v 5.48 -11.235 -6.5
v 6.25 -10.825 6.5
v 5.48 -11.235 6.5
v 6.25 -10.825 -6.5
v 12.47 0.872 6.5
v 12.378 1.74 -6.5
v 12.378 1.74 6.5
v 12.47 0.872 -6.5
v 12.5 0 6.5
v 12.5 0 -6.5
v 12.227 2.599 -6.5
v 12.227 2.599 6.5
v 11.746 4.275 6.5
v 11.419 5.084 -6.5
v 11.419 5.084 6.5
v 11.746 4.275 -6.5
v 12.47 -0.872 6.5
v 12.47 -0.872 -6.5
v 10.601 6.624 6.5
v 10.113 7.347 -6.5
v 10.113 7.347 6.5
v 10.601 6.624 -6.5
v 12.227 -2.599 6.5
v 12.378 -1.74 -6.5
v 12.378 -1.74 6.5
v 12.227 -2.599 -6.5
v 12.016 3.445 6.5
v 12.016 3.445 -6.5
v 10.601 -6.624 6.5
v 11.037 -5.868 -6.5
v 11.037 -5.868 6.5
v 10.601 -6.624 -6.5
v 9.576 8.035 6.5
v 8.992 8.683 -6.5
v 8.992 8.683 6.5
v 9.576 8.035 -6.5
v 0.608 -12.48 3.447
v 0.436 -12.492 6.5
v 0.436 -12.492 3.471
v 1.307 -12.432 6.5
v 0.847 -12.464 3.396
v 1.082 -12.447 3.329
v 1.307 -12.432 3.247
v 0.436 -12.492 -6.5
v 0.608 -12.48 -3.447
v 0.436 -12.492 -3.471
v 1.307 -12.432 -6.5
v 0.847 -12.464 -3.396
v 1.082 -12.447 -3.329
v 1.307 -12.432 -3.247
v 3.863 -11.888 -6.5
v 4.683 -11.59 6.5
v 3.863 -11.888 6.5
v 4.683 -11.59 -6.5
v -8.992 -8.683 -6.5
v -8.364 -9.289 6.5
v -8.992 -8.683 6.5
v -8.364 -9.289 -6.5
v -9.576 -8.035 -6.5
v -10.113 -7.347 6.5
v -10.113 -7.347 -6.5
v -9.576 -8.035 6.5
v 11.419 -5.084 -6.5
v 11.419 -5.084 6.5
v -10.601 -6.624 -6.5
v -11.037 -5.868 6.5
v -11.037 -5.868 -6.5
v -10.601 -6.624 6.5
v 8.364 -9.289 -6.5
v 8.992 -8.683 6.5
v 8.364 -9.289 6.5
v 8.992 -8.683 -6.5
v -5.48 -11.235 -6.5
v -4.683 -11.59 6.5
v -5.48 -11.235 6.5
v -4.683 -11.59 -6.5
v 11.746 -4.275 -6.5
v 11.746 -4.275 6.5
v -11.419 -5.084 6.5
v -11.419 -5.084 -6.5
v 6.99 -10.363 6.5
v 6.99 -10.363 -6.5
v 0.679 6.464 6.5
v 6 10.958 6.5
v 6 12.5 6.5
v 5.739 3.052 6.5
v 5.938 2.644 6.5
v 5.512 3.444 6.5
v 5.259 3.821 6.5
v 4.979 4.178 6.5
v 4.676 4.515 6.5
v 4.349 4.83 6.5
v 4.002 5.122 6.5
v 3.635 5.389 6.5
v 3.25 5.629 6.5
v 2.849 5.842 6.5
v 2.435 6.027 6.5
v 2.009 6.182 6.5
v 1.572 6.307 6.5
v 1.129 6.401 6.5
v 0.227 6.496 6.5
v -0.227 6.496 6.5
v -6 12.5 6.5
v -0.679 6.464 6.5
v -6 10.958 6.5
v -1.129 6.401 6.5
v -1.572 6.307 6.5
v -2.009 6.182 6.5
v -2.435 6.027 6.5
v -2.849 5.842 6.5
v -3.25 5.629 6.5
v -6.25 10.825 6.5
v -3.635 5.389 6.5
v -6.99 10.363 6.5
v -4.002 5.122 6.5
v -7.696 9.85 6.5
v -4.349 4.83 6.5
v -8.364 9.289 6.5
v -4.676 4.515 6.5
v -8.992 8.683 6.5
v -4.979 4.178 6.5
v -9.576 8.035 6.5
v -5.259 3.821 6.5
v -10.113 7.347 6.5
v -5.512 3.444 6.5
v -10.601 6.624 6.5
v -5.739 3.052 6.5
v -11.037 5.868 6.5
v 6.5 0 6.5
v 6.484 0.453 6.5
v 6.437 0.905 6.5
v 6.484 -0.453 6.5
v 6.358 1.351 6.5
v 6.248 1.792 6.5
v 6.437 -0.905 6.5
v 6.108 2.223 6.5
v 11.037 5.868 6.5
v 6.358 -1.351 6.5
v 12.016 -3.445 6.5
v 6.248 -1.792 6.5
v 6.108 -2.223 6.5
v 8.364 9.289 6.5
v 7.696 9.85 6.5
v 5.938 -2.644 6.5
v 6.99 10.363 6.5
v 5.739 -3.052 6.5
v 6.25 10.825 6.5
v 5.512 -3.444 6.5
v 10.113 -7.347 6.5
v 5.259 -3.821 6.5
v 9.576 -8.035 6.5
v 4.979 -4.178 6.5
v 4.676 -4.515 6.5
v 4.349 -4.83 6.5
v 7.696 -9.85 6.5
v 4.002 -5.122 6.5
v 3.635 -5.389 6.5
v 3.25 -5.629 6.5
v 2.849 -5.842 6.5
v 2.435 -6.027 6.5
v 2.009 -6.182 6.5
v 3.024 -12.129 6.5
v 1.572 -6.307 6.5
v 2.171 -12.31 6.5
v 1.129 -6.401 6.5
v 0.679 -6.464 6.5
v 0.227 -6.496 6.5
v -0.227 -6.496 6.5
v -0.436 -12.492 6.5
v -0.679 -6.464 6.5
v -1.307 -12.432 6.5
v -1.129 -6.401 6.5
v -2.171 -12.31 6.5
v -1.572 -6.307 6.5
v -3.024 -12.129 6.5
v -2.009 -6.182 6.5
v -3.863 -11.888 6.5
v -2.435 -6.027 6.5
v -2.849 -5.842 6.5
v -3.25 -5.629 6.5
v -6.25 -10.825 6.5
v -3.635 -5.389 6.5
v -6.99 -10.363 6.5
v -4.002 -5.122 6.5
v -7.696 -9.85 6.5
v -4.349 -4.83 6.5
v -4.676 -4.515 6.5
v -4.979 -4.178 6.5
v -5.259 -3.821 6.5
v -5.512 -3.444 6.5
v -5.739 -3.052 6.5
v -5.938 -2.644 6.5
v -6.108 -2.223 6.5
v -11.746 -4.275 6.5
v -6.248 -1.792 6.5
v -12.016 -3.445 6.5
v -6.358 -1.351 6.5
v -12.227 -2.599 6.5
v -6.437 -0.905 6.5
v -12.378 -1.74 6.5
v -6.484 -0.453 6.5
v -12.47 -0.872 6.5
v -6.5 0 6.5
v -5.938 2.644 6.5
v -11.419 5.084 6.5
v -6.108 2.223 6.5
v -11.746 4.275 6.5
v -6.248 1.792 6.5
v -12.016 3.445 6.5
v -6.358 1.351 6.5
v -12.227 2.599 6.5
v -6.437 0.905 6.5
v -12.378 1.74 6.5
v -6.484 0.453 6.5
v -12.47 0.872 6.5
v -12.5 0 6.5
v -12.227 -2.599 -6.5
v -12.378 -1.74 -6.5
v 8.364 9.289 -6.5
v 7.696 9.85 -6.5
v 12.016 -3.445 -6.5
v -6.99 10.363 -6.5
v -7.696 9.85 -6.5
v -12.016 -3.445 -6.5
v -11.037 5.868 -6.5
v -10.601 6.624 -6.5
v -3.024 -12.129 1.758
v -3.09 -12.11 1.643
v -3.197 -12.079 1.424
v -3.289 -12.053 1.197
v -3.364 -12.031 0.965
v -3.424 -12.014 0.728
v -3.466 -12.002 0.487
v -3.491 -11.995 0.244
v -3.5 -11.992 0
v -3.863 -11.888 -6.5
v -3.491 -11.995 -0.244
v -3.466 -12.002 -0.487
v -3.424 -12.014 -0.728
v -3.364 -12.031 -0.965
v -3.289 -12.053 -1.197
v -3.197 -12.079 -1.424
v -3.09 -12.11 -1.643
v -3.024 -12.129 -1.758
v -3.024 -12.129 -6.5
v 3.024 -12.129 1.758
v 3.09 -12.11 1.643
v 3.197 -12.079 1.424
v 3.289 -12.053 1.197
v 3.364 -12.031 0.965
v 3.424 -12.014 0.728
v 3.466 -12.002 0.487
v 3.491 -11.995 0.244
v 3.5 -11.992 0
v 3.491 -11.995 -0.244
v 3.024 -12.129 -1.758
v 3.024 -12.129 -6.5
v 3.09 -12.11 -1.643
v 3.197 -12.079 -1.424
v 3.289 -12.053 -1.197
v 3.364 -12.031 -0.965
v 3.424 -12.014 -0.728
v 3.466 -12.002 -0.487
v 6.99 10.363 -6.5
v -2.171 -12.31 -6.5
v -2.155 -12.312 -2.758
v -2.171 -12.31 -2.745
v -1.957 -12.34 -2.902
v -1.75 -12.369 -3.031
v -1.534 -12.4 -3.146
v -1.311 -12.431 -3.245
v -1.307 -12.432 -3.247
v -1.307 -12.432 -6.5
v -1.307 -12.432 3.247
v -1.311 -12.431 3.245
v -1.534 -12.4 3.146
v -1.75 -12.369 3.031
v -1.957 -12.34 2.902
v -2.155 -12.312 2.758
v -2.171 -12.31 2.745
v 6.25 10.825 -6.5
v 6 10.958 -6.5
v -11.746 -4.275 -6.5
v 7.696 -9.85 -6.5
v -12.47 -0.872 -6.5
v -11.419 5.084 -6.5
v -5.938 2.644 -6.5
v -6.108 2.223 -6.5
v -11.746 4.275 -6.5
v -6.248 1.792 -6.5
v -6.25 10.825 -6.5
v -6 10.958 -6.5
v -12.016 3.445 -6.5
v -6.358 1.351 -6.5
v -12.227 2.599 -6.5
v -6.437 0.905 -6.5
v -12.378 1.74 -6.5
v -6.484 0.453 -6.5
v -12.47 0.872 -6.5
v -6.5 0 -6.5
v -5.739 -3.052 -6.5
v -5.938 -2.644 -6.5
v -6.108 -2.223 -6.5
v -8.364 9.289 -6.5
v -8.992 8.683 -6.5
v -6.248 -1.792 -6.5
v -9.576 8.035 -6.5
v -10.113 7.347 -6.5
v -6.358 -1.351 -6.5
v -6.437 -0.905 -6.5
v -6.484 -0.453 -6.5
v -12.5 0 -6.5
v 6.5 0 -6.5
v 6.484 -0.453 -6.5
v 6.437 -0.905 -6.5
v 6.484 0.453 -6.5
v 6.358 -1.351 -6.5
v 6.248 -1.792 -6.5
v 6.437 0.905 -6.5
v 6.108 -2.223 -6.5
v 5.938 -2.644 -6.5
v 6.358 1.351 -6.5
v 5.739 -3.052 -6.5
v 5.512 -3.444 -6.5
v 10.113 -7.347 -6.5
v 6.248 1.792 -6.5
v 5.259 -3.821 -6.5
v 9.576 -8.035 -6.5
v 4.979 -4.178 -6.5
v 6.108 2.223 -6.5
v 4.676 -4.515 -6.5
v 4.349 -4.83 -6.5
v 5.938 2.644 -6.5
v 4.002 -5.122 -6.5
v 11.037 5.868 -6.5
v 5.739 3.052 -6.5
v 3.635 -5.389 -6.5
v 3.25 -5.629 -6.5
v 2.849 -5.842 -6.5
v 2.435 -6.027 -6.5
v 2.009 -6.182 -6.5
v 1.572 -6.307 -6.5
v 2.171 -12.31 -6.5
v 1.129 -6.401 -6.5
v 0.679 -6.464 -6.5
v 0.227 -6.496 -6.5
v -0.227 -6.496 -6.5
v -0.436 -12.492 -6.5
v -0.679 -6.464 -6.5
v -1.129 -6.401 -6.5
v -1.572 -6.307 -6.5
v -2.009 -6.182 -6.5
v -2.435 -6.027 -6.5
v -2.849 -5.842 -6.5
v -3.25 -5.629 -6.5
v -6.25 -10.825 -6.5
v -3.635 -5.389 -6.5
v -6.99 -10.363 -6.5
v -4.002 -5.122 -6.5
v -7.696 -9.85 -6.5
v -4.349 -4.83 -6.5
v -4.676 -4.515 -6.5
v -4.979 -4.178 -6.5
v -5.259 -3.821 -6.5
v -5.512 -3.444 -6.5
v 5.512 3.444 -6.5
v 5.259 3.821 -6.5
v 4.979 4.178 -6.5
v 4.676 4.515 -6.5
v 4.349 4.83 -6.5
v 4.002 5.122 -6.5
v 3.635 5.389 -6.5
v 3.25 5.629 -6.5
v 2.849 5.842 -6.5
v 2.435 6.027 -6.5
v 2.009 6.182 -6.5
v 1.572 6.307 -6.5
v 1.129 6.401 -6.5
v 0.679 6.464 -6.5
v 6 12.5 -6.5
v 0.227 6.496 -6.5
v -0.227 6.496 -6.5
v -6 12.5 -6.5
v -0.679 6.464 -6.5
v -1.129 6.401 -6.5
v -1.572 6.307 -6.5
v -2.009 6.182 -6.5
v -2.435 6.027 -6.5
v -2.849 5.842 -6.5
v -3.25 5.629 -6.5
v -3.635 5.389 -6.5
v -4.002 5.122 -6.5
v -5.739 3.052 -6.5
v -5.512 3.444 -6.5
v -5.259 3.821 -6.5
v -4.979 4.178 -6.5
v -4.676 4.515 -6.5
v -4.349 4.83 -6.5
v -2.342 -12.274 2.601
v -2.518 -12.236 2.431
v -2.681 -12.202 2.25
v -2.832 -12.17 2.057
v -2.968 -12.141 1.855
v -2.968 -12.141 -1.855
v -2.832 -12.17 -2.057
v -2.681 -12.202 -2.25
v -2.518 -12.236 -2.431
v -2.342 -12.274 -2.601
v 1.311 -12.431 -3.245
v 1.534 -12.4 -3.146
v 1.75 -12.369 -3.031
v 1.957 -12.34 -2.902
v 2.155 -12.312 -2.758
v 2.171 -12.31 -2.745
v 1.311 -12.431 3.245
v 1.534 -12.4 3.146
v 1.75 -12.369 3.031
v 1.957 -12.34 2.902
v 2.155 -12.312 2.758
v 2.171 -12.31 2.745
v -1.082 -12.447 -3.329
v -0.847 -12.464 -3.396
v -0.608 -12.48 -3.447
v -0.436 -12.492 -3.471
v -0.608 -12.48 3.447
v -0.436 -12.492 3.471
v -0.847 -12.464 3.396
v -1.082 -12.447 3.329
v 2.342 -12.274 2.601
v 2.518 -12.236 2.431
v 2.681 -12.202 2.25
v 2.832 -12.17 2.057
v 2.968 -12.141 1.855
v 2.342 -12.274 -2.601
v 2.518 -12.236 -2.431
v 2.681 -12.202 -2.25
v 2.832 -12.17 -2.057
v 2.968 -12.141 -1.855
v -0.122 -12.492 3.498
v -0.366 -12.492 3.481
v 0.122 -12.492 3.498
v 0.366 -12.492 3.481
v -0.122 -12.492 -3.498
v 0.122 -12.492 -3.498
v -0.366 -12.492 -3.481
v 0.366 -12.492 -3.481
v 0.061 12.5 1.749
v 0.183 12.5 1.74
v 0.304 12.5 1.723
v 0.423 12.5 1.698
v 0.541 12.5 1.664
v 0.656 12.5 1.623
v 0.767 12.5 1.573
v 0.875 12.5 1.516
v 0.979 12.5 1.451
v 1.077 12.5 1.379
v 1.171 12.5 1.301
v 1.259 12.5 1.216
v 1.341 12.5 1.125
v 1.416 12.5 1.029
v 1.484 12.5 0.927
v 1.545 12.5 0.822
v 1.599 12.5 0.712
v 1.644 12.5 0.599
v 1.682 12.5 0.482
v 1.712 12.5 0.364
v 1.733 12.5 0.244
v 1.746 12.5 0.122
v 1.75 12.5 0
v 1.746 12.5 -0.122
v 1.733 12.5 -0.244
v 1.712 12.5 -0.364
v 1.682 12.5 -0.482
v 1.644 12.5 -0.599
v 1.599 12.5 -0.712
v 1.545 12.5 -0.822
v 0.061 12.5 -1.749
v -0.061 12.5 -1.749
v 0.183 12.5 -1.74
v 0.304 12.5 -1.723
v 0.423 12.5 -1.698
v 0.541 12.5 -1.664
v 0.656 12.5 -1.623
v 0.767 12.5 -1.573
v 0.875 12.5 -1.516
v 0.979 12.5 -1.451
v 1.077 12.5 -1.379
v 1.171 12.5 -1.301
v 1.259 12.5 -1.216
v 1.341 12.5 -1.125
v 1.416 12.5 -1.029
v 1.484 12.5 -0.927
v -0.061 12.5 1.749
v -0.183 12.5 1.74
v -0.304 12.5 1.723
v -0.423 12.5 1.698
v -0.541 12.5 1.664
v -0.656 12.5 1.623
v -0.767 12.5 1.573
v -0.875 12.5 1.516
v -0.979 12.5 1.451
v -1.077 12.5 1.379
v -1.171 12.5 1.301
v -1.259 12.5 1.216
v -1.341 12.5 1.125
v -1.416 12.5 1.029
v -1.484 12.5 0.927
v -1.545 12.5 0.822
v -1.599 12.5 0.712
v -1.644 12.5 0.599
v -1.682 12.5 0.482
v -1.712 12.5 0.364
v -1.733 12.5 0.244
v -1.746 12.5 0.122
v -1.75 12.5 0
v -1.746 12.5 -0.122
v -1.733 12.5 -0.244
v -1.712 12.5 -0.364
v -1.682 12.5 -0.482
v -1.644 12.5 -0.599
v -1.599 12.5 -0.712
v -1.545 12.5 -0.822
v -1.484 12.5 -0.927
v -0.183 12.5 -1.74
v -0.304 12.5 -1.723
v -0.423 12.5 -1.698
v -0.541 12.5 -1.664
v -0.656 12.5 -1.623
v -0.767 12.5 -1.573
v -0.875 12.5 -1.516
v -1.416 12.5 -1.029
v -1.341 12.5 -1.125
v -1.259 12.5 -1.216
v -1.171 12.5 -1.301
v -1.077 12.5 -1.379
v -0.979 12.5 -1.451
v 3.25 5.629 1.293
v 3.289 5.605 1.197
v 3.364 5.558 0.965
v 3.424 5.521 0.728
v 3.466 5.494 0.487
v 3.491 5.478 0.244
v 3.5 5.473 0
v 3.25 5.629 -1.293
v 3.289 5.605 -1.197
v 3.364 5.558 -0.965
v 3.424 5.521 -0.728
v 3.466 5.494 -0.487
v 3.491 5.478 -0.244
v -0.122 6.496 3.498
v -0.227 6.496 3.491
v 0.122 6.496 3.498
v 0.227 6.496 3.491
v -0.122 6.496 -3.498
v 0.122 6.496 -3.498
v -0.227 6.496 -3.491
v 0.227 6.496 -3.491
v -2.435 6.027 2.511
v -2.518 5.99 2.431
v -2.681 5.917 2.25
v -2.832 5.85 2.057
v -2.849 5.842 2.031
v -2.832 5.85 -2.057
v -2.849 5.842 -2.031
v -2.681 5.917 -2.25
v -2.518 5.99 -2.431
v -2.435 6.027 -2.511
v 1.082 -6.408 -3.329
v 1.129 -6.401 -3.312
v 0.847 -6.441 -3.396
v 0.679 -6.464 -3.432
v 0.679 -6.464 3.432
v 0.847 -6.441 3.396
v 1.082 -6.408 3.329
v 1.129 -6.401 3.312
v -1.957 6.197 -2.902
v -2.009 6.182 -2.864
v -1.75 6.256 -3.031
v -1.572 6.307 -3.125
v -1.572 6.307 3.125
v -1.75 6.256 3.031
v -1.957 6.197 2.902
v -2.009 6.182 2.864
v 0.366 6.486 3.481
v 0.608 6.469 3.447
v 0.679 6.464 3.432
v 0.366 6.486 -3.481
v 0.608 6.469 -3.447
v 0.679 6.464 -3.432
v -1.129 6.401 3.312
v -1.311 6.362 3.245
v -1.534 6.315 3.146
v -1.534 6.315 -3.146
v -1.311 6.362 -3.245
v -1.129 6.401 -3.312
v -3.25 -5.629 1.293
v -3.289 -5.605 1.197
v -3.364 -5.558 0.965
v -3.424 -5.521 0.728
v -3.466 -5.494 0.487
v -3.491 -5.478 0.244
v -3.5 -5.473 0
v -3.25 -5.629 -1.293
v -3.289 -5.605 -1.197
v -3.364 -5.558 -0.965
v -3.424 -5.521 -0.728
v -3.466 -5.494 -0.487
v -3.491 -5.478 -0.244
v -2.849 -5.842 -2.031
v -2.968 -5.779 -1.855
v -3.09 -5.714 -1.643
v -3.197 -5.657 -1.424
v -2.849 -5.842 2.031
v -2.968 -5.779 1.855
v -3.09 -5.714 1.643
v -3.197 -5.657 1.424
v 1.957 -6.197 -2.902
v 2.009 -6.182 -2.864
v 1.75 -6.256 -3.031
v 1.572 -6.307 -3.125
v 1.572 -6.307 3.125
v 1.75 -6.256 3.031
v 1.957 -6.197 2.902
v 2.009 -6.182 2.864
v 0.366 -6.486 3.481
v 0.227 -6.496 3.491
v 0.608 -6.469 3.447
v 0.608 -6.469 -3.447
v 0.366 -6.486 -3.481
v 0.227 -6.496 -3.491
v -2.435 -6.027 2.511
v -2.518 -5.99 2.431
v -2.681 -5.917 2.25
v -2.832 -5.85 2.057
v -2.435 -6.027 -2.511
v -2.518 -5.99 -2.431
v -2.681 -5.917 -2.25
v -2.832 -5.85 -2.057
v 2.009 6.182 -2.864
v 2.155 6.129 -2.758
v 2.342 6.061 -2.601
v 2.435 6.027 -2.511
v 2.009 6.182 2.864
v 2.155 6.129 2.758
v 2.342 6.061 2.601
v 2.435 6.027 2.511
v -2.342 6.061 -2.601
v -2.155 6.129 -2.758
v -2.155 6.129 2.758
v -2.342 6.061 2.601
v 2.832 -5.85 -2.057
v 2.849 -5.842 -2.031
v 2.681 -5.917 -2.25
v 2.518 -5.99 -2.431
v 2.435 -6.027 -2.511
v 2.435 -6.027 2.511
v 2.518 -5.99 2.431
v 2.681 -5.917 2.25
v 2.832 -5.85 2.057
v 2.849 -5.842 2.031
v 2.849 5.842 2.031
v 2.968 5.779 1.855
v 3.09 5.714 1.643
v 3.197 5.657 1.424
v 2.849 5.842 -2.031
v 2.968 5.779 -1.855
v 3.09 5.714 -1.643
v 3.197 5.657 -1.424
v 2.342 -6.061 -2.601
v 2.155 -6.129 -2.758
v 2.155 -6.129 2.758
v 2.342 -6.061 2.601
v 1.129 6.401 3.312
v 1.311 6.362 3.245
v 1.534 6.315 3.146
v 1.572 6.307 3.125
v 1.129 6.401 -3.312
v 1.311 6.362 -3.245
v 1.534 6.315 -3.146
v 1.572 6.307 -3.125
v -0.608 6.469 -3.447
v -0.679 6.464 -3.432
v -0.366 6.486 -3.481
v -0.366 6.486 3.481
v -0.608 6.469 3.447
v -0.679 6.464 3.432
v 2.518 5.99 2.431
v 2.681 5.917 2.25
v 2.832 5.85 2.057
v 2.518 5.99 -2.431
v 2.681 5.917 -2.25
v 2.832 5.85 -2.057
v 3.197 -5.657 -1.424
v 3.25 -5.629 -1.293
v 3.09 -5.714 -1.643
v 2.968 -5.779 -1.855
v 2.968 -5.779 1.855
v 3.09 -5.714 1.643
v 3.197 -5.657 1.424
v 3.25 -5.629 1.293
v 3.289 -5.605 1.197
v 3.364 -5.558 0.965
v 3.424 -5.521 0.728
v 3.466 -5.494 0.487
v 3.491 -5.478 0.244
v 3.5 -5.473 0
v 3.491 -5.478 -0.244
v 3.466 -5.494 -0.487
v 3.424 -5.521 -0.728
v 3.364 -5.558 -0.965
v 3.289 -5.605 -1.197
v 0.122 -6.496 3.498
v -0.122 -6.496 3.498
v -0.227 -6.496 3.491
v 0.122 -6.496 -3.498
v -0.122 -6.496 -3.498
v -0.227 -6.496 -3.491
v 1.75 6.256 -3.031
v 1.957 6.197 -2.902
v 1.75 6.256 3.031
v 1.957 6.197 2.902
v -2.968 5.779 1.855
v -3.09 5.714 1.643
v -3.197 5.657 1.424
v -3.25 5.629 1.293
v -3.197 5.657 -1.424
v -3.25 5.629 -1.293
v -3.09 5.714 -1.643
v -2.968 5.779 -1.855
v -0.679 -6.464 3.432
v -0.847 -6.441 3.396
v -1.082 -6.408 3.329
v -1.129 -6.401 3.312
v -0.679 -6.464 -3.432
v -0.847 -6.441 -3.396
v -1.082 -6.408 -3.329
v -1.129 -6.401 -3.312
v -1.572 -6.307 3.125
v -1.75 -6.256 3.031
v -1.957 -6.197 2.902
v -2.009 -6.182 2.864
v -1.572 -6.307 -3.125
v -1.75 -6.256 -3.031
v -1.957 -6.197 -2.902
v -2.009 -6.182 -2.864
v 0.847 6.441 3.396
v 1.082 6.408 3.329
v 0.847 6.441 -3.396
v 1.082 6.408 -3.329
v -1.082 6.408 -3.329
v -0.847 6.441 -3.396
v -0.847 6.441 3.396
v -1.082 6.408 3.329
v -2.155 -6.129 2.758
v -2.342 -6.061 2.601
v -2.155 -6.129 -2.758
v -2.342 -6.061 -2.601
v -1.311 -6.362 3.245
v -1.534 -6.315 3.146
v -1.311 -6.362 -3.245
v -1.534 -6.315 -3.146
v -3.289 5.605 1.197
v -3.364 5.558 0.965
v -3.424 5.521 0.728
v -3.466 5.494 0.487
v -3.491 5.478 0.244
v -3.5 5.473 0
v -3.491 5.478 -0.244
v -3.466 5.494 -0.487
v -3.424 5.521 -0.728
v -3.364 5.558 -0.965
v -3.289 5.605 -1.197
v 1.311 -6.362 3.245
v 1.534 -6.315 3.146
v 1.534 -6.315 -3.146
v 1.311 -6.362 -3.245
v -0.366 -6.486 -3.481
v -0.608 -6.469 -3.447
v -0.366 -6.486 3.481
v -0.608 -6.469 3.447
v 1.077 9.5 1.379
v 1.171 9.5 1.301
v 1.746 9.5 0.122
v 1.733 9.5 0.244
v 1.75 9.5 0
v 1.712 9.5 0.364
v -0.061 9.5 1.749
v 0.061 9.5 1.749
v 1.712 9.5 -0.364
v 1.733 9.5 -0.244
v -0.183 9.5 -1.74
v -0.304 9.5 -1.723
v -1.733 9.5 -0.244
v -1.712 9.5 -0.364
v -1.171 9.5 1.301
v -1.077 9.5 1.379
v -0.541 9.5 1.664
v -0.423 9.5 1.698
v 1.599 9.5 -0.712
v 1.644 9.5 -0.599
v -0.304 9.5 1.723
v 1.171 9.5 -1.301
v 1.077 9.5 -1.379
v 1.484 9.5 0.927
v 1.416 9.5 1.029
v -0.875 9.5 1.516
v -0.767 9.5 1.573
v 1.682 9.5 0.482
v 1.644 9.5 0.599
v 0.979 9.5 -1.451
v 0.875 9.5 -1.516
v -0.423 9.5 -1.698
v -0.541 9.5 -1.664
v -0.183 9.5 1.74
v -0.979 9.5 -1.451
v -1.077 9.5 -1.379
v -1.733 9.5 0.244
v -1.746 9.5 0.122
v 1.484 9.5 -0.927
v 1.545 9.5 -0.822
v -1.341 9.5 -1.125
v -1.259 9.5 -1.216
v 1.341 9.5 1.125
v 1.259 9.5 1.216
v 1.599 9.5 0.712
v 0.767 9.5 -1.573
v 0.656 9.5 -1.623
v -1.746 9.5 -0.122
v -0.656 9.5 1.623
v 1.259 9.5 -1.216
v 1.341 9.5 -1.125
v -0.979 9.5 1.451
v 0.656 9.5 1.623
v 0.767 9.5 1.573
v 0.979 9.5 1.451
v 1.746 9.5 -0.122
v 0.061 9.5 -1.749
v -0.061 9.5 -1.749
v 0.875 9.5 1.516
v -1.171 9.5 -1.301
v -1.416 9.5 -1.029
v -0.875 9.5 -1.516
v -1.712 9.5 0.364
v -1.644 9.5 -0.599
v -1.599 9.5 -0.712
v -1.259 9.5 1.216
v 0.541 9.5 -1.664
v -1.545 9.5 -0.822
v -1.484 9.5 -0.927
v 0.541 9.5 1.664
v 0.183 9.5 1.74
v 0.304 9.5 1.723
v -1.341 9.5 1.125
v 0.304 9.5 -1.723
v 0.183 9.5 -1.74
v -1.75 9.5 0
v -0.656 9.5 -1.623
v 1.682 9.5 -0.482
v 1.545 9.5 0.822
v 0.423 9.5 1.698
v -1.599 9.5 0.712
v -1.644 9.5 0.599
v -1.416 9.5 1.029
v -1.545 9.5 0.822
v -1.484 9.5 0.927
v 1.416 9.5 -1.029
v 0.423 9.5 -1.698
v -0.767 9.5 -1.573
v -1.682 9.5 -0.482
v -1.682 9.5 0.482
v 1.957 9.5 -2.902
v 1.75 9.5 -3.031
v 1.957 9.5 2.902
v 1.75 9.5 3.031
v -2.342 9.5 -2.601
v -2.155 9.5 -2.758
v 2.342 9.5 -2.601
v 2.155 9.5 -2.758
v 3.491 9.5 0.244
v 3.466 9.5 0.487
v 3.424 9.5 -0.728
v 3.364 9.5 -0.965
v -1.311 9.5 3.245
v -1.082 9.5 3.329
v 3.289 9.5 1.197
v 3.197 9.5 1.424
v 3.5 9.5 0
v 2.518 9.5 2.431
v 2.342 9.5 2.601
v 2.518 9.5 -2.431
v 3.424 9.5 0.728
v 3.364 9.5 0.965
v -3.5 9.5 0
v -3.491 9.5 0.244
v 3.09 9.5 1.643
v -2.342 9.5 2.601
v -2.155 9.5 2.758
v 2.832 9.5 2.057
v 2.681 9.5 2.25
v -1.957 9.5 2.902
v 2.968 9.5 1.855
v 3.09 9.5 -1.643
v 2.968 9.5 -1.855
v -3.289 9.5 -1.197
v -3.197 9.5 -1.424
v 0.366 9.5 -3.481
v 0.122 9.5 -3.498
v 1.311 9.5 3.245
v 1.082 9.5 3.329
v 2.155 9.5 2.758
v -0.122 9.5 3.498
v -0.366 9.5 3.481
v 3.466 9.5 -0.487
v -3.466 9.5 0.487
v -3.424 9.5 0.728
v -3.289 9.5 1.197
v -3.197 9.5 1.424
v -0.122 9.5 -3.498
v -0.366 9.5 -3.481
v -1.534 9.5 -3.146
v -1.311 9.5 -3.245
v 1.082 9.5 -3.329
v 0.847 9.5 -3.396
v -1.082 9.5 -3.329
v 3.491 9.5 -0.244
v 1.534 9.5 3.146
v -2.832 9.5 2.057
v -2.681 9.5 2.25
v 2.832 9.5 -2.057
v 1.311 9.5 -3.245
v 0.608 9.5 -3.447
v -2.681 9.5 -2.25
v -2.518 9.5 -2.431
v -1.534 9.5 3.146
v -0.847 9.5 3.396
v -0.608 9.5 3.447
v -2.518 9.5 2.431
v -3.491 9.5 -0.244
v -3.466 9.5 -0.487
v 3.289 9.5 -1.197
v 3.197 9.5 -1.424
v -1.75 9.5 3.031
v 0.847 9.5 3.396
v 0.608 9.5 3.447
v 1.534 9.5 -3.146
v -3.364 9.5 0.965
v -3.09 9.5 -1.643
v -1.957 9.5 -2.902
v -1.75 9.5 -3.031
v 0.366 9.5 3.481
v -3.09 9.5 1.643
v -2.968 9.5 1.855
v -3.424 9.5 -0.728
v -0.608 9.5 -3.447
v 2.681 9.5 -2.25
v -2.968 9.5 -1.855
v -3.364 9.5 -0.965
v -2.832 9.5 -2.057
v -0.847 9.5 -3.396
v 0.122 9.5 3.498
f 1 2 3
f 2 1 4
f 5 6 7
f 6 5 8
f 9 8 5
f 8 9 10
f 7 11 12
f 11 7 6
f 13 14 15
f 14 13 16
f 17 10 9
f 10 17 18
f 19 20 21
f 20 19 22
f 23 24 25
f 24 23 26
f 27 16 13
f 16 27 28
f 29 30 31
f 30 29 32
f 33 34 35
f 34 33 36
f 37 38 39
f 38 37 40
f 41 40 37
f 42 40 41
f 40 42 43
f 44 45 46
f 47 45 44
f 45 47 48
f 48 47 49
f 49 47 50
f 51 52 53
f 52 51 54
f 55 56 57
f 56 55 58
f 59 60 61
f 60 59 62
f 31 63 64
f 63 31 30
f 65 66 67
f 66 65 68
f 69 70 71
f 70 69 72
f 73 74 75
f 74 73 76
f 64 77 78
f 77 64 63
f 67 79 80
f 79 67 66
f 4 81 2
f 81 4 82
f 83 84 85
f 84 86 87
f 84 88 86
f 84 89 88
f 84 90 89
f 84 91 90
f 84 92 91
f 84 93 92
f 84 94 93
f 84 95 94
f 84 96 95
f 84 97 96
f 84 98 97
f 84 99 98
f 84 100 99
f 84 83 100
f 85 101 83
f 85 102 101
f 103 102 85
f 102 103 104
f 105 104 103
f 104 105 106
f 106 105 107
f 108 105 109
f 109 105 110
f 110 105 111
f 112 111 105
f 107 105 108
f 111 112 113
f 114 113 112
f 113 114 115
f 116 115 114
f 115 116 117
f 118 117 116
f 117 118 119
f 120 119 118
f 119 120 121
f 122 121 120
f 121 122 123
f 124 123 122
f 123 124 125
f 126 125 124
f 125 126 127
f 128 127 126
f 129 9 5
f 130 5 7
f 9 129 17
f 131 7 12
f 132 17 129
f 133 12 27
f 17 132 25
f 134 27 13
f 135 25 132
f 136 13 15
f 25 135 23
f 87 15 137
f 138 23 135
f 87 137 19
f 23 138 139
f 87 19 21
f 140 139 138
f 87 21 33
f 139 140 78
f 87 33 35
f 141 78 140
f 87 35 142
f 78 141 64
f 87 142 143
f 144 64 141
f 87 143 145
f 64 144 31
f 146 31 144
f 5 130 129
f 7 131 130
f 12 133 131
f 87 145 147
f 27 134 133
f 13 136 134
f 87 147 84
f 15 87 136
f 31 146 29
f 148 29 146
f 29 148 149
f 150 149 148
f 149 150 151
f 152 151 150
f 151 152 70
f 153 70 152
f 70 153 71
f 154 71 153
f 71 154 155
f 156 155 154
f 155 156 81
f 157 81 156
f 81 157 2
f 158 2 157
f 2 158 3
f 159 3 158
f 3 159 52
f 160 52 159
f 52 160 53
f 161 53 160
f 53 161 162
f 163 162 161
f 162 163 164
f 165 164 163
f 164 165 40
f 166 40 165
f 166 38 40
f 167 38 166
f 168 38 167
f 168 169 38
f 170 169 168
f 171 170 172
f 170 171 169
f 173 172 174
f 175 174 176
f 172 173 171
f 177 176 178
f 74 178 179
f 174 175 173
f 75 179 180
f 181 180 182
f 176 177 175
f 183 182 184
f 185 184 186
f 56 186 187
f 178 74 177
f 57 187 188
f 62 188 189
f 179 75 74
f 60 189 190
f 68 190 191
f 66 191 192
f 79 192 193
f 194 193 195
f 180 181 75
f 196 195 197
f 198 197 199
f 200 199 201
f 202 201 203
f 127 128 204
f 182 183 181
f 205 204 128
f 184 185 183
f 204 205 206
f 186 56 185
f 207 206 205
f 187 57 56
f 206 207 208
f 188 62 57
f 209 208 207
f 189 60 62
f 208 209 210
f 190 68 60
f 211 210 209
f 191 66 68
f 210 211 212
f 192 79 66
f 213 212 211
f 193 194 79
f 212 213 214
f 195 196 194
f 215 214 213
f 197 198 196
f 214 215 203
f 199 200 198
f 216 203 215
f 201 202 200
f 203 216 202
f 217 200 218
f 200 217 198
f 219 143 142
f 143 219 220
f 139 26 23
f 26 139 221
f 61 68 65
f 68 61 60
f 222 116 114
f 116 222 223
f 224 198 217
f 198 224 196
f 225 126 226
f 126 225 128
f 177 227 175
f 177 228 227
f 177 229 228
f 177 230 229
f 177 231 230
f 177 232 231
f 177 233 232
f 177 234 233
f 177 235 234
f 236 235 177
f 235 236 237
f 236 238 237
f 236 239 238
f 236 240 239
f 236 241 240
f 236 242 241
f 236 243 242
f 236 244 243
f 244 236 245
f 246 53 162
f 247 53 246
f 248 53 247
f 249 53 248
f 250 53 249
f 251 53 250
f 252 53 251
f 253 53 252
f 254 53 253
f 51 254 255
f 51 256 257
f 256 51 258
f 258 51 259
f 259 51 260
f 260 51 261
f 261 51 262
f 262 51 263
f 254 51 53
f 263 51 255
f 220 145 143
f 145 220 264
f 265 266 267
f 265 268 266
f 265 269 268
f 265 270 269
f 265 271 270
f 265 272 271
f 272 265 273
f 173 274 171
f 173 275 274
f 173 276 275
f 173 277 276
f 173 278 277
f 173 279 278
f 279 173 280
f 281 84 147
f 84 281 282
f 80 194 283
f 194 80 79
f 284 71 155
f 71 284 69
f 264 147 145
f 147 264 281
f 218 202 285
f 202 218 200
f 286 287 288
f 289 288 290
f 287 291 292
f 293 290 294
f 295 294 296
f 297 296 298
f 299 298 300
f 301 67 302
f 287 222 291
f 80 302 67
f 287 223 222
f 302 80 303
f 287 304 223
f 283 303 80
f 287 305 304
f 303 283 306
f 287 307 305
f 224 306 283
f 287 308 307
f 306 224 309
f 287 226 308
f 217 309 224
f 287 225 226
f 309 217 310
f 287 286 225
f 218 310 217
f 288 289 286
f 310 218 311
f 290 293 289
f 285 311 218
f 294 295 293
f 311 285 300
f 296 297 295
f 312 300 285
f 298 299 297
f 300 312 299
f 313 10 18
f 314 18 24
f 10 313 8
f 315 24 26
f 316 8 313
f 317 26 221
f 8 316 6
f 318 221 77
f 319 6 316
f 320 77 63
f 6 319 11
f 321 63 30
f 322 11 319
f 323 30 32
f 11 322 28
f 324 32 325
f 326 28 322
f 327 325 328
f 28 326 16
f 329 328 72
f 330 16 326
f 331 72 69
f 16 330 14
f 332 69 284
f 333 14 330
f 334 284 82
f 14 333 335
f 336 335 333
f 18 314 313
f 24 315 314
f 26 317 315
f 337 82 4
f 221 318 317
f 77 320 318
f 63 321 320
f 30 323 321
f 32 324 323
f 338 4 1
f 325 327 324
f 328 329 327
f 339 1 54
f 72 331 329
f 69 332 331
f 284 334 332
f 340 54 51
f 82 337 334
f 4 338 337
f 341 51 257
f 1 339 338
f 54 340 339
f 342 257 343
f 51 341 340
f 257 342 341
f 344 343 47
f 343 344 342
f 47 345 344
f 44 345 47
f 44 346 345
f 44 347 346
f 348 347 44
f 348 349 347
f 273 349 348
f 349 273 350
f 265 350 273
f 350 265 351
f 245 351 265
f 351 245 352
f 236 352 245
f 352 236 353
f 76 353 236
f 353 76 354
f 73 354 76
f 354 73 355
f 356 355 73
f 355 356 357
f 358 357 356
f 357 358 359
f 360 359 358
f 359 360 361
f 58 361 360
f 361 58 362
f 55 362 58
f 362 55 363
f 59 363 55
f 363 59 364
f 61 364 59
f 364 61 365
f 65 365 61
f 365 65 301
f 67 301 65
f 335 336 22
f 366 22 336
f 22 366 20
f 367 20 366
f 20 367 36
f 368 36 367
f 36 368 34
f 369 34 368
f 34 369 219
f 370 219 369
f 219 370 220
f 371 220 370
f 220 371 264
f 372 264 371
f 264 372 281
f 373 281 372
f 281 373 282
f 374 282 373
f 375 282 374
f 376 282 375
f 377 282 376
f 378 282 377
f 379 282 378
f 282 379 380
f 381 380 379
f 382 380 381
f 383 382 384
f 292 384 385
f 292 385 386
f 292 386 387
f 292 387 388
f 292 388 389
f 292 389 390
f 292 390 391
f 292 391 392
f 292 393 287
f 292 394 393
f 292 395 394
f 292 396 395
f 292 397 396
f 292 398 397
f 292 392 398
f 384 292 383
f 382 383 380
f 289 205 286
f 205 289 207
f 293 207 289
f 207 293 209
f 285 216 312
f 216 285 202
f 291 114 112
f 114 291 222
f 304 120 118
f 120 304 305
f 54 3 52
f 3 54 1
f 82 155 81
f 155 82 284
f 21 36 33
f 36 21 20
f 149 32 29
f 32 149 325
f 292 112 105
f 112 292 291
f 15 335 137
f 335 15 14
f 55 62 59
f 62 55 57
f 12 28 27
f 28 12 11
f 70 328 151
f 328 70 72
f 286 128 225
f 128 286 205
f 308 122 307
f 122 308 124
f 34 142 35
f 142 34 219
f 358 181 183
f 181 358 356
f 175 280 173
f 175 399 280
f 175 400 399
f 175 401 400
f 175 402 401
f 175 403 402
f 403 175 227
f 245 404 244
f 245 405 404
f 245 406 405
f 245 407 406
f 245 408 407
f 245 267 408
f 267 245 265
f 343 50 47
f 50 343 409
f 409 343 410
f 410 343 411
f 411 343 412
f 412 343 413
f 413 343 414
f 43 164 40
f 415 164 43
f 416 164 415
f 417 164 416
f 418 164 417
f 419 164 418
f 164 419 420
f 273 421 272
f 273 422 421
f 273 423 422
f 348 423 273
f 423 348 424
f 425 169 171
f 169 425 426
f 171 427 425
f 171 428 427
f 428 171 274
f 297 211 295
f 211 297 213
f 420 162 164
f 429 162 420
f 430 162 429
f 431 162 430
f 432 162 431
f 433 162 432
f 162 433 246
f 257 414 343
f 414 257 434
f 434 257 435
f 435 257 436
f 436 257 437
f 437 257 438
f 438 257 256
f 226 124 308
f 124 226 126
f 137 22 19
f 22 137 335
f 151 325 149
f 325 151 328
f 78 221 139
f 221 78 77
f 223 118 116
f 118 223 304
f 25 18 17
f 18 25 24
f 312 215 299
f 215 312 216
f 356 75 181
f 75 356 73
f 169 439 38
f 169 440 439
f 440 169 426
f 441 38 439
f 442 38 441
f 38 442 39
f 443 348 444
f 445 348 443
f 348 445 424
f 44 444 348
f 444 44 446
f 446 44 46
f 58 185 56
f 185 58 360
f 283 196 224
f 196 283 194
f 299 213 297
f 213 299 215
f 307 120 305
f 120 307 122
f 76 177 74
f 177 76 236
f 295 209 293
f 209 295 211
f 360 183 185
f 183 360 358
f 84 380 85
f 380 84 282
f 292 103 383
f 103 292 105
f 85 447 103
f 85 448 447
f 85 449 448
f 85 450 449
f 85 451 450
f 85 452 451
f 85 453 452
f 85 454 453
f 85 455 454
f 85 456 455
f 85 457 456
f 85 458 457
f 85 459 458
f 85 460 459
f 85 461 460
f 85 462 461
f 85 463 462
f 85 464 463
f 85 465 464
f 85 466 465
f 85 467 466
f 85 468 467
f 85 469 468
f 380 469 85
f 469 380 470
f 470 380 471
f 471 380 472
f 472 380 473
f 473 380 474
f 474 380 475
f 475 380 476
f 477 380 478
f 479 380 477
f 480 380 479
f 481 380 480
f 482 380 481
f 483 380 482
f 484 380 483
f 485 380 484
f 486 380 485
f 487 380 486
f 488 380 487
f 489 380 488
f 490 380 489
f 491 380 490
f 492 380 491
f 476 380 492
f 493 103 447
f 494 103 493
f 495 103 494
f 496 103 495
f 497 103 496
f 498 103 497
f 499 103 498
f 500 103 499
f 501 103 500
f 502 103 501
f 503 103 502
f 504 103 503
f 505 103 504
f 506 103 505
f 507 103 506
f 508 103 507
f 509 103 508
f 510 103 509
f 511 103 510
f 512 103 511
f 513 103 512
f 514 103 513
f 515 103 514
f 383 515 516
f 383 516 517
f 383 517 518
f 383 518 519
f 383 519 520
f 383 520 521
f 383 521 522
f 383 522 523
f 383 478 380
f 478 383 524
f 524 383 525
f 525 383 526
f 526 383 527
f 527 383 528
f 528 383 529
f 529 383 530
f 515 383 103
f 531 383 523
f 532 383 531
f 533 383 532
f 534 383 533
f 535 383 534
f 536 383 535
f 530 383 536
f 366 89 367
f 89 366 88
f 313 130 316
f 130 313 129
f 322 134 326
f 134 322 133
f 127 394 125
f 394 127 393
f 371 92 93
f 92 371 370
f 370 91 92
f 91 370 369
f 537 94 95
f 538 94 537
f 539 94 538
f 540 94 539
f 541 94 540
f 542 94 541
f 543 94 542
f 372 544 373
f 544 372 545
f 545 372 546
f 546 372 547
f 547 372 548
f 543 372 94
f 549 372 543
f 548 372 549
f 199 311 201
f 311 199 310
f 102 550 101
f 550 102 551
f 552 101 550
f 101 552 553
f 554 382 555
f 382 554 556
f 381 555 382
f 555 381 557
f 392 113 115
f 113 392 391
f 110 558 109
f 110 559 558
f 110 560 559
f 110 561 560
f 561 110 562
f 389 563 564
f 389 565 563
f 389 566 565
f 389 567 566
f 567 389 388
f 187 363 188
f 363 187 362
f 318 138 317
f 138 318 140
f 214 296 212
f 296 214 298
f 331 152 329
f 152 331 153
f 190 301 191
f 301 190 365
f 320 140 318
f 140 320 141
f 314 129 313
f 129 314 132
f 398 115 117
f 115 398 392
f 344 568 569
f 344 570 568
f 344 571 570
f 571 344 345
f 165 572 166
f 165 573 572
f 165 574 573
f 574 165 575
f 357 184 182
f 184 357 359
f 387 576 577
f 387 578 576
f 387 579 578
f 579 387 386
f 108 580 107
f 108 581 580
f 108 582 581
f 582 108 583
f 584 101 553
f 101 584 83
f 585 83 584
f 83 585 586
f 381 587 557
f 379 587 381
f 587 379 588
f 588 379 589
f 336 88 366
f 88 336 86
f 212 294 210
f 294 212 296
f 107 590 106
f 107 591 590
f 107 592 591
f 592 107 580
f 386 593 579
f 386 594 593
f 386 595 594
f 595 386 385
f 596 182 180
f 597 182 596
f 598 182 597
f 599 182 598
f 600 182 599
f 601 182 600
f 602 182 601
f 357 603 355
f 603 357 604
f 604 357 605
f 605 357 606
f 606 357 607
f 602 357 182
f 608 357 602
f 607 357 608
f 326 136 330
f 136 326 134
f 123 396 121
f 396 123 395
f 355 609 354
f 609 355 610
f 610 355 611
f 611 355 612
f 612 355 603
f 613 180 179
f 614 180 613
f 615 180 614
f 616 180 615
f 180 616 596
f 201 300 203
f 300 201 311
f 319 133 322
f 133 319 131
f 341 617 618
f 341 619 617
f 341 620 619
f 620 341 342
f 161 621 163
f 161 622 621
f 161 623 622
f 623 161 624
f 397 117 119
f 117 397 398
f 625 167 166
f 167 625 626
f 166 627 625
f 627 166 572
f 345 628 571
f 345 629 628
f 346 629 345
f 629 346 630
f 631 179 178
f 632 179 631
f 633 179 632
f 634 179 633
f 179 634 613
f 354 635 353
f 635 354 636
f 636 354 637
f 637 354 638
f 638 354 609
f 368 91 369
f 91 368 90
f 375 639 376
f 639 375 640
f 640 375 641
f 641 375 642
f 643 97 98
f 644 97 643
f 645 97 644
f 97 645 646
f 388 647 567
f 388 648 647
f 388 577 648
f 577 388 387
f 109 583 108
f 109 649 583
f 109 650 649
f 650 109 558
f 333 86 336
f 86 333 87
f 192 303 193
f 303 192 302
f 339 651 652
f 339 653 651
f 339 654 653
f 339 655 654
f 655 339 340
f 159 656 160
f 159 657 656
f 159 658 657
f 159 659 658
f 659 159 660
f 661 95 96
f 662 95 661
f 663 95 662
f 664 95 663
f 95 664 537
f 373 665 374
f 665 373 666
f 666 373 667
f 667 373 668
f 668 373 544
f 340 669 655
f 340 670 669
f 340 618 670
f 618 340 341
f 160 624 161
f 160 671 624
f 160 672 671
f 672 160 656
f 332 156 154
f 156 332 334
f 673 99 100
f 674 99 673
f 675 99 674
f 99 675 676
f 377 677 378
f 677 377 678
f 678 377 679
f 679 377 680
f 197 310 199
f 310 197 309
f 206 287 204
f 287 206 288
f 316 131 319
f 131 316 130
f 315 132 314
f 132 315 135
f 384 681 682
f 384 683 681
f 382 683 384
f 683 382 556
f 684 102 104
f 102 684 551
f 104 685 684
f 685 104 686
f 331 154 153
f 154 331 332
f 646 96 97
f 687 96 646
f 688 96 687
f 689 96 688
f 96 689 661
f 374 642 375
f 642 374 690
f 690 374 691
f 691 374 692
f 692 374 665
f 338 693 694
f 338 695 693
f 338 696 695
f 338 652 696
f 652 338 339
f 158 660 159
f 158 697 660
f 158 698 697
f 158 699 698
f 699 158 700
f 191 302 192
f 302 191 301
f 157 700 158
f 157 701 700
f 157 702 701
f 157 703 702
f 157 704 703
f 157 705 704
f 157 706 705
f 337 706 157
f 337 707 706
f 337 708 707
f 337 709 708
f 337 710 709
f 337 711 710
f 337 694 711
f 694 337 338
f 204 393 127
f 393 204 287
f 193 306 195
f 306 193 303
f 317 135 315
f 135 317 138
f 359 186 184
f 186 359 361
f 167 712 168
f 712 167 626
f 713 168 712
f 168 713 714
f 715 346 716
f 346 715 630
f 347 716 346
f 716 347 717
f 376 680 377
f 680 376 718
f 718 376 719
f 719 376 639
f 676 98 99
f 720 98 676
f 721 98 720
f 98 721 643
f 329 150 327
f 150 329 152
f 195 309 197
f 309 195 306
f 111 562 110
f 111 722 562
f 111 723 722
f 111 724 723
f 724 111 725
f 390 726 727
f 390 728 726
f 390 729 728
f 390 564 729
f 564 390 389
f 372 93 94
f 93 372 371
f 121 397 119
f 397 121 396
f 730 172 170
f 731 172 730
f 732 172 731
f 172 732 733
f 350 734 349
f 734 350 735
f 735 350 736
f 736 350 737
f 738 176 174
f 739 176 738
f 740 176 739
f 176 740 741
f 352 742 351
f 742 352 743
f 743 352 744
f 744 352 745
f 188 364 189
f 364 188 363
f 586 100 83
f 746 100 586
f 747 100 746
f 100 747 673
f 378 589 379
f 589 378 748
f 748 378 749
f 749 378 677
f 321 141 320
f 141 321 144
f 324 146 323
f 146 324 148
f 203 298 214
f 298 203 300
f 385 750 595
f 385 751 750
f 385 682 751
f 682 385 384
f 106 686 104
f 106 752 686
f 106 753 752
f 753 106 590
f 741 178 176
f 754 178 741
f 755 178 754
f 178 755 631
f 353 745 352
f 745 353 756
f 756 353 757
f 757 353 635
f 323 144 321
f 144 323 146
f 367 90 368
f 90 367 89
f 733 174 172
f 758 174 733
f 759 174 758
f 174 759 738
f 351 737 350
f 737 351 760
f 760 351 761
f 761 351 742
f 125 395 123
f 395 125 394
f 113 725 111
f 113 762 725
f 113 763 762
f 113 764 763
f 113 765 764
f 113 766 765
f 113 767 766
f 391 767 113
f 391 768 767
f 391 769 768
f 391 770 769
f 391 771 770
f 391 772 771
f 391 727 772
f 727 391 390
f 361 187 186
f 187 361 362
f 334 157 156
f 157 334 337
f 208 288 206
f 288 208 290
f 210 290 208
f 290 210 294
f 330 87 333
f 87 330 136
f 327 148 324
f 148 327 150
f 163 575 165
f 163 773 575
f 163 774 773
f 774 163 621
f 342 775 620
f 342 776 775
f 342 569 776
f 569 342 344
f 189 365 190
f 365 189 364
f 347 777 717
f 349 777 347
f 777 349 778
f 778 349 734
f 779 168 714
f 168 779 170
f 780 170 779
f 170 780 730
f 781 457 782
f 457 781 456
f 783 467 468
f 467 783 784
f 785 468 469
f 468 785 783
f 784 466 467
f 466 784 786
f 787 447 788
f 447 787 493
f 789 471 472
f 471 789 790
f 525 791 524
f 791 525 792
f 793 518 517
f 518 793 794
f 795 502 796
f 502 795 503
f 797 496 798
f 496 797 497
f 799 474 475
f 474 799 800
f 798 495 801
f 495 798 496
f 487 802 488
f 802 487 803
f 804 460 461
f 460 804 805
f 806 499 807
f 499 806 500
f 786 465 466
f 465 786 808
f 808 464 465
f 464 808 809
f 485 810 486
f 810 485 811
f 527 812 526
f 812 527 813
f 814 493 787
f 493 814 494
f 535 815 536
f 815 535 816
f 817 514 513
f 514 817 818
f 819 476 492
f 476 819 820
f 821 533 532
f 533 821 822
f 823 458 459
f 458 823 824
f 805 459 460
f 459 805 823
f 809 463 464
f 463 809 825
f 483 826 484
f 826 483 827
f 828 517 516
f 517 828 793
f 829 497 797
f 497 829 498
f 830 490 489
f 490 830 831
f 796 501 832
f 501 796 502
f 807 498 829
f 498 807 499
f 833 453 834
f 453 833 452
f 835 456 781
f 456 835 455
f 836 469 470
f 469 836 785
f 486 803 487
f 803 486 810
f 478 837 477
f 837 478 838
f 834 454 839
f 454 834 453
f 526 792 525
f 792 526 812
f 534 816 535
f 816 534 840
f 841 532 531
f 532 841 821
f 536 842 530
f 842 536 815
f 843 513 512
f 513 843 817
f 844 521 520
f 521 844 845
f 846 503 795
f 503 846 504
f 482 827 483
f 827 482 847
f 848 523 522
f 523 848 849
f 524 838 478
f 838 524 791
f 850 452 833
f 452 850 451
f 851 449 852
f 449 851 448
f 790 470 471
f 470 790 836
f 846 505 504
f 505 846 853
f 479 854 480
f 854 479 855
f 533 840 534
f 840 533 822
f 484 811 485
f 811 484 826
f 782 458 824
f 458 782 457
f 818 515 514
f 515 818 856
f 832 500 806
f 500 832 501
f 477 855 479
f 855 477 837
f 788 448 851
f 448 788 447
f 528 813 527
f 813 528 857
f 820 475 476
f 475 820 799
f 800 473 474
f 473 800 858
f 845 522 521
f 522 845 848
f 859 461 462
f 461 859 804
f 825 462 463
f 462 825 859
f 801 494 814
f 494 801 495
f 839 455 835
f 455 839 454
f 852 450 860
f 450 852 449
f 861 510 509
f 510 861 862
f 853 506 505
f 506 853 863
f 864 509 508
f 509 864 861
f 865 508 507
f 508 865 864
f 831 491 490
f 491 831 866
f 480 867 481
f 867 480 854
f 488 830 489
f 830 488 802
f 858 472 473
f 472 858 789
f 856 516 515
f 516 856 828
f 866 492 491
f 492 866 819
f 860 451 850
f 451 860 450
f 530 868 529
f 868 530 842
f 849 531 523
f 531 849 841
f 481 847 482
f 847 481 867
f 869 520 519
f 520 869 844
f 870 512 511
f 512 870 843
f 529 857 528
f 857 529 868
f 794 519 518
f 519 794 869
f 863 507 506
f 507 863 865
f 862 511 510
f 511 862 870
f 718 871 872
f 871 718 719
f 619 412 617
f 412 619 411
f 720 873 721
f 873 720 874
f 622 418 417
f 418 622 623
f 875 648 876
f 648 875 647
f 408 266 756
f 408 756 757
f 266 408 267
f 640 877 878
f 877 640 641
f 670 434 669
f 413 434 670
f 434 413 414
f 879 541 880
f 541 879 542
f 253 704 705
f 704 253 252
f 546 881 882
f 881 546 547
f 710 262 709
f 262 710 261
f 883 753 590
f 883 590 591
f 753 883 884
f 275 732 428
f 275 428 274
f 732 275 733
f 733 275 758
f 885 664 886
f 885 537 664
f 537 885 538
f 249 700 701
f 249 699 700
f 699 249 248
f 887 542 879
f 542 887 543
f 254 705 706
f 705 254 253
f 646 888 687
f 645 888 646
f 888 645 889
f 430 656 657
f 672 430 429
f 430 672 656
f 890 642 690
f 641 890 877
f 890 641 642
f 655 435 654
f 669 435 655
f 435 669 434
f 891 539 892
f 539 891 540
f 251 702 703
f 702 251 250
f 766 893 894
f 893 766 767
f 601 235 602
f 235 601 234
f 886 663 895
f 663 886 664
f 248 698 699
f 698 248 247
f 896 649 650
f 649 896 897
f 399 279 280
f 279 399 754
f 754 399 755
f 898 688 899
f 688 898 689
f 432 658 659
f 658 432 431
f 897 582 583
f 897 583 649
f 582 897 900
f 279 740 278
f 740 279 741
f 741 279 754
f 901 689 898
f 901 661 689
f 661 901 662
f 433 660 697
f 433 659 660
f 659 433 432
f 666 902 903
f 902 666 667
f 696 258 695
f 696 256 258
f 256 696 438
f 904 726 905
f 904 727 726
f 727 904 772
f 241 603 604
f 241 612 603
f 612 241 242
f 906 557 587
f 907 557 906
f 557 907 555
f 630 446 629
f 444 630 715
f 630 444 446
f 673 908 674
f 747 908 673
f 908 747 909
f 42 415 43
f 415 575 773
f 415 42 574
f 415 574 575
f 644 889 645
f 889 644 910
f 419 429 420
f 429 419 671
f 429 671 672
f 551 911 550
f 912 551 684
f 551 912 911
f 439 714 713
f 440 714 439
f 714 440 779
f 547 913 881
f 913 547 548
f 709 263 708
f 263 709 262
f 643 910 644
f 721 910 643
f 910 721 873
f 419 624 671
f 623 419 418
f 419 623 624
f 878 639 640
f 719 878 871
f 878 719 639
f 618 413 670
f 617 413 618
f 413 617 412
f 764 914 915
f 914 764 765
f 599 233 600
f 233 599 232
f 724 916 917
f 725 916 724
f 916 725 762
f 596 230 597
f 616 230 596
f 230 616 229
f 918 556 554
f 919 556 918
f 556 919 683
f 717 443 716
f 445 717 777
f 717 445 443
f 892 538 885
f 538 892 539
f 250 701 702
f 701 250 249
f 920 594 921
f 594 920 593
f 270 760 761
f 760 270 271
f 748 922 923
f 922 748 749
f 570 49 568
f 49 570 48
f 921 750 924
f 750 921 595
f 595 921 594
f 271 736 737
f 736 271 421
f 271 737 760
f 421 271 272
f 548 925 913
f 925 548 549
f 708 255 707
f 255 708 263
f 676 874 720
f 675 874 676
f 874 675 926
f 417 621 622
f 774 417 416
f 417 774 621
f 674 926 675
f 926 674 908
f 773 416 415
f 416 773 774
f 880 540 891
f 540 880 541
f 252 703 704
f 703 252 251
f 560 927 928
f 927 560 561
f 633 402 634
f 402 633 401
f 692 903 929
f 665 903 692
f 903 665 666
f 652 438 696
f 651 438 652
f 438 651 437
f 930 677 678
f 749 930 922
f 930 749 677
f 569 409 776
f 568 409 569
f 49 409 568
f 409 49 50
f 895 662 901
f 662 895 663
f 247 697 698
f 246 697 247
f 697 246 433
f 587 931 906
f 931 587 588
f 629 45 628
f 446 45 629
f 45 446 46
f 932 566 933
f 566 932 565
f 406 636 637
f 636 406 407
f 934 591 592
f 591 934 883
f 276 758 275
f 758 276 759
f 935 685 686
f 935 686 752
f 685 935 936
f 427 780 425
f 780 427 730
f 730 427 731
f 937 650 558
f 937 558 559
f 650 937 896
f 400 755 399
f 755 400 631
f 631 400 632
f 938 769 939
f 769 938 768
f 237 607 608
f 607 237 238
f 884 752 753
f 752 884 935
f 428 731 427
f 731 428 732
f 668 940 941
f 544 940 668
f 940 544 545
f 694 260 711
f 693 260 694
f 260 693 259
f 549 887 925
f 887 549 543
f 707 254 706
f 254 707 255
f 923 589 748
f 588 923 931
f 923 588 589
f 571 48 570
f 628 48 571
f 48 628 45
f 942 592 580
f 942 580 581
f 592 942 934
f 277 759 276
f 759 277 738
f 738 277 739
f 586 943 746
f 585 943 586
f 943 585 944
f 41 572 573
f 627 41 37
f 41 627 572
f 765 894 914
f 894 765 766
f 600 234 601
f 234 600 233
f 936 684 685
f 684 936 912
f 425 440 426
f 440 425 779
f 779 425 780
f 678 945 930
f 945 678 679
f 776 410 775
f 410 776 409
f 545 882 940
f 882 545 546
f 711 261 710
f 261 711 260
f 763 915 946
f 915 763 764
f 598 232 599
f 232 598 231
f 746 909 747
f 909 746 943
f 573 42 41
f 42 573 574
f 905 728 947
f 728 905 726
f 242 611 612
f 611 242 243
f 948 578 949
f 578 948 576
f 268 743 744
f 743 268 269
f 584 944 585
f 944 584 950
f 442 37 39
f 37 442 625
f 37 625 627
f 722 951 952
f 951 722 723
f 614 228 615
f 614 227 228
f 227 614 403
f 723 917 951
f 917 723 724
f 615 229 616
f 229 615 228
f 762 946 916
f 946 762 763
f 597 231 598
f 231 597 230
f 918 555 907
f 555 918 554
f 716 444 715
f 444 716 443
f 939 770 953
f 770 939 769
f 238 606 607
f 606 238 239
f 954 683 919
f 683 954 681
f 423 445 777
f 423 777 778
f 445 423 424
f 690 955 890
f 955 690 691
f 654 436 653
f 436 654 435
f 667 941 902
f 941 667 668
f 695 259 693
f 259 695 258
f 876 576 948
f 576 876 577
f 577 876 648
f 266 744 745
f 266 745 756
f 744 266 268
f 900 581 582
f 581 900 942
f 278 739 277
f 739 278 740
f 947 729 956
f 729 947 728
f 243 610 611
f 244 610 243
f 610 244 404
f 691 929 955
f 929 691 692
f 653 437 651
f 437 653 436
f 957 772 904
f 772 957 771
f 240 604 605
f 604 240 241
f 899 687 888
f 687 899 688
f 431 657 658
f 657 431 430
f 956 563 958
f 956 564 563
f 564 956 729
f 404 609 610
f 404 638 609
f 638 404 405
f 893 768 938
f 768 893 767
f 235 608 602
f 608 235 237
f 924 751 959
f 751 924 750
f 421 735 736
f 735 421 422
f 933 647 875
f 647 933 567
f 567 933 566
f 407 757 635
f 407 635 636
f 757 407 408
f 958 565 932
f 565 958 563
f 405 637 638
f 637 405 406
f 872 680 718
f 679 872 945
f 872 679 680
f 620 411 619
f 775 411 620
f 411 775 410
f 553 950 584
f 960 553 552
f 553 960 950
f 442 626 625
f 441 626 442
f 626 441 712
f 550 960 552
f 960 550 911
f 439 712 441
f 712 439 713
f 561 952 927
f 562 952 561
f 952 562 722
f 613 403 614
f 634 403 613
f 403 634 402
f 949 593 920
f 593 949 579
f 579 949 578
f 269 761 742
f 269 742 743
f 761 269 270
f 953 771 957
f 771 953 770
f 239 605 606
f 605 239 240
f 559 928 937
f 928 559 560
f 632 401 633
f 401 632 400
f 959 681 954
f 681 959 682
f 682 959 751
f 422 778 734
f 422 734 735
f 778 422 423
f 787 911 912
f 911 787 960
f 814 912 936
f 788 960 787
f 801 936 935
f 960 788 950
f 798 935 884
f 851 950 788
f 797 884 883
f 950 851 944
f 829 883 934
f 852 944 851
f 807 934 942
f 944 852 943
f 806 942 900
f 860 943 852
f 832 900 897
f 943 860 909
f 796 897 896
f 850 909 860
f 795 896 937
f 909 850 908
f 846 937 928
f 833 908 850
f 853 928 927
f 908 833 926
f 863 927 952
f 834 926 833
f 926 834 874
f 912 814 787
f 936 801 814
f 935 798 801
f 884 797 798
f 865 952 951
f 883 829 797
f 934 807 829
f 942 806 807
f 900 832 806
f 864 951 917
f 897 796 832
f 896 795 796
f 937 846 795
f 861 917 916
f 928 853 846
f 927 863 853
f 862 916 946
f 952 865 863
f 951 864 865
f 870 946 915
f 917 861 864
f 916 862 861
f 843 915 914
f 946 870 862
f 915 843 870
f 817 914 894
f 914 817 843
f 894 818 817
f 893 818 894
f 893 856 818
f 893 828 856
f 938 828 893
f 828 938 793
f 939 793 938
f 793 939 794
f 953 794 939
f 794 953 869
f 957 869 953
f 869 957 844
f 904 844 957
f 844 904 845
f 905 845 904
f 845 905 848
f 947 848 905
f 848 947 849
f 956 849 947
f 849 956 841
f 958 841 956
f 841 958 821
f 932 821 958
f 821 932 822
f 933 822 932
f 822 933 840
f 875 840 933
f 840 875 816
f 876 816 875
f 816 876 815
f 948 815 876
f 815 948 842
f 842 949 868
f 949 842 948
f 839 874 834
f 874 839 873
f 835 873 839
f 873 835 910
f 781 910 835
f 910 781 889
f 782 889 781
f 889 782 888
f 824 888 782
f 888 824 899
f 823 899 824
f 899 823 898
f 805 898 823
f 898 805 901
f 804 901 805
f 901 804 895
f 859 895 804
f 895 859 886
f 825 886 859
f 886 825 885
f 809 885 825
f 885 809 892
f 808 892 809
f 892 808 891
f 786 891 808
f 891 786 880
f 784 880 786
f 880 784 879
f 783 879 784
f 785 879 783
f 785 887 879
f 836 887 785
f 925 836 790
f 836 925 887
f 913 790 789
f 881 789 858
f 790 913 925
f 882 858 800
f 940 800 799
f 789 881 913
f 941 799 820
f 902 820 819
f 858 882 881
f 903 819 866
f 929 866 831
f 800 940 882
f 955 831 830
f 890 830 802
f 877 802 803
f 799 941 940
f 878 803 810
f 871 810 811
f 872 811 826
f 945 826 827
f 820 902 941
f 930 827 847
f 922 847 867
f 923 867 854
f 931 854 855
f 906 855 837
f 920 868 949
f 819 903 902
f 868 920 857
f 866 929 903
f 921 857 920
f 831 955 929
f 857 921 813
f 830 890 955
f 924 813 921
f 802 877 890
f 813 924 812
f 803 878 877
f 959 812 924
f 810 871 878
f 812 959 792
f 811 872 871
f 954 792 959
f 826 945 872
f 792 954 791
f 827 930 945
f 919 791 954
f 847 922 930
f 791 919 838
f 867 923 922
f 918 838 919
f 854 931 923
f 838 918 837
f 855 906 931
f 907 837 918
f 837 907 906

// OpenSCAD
$fn = 90;

outterDiameter = 25;
width = 13;

difference(){
	union(){
		cylinder(d=outterDiameter, h=width, center=true);
		translate([0, outterDiameter/2-width/2, 0])
			cube([12, width, width], center=true);
	}
	#cylinder(d=13, h=width, center=true);
	#rotate([90, 0, 0])
		cylinder(d=3.5, h=outterDiameter, center=true);
	#translate([0, -3, 0])
		rotate([90, 0, 0])
			cylinder(d=7, h=outterDiameter, center=true);
}
